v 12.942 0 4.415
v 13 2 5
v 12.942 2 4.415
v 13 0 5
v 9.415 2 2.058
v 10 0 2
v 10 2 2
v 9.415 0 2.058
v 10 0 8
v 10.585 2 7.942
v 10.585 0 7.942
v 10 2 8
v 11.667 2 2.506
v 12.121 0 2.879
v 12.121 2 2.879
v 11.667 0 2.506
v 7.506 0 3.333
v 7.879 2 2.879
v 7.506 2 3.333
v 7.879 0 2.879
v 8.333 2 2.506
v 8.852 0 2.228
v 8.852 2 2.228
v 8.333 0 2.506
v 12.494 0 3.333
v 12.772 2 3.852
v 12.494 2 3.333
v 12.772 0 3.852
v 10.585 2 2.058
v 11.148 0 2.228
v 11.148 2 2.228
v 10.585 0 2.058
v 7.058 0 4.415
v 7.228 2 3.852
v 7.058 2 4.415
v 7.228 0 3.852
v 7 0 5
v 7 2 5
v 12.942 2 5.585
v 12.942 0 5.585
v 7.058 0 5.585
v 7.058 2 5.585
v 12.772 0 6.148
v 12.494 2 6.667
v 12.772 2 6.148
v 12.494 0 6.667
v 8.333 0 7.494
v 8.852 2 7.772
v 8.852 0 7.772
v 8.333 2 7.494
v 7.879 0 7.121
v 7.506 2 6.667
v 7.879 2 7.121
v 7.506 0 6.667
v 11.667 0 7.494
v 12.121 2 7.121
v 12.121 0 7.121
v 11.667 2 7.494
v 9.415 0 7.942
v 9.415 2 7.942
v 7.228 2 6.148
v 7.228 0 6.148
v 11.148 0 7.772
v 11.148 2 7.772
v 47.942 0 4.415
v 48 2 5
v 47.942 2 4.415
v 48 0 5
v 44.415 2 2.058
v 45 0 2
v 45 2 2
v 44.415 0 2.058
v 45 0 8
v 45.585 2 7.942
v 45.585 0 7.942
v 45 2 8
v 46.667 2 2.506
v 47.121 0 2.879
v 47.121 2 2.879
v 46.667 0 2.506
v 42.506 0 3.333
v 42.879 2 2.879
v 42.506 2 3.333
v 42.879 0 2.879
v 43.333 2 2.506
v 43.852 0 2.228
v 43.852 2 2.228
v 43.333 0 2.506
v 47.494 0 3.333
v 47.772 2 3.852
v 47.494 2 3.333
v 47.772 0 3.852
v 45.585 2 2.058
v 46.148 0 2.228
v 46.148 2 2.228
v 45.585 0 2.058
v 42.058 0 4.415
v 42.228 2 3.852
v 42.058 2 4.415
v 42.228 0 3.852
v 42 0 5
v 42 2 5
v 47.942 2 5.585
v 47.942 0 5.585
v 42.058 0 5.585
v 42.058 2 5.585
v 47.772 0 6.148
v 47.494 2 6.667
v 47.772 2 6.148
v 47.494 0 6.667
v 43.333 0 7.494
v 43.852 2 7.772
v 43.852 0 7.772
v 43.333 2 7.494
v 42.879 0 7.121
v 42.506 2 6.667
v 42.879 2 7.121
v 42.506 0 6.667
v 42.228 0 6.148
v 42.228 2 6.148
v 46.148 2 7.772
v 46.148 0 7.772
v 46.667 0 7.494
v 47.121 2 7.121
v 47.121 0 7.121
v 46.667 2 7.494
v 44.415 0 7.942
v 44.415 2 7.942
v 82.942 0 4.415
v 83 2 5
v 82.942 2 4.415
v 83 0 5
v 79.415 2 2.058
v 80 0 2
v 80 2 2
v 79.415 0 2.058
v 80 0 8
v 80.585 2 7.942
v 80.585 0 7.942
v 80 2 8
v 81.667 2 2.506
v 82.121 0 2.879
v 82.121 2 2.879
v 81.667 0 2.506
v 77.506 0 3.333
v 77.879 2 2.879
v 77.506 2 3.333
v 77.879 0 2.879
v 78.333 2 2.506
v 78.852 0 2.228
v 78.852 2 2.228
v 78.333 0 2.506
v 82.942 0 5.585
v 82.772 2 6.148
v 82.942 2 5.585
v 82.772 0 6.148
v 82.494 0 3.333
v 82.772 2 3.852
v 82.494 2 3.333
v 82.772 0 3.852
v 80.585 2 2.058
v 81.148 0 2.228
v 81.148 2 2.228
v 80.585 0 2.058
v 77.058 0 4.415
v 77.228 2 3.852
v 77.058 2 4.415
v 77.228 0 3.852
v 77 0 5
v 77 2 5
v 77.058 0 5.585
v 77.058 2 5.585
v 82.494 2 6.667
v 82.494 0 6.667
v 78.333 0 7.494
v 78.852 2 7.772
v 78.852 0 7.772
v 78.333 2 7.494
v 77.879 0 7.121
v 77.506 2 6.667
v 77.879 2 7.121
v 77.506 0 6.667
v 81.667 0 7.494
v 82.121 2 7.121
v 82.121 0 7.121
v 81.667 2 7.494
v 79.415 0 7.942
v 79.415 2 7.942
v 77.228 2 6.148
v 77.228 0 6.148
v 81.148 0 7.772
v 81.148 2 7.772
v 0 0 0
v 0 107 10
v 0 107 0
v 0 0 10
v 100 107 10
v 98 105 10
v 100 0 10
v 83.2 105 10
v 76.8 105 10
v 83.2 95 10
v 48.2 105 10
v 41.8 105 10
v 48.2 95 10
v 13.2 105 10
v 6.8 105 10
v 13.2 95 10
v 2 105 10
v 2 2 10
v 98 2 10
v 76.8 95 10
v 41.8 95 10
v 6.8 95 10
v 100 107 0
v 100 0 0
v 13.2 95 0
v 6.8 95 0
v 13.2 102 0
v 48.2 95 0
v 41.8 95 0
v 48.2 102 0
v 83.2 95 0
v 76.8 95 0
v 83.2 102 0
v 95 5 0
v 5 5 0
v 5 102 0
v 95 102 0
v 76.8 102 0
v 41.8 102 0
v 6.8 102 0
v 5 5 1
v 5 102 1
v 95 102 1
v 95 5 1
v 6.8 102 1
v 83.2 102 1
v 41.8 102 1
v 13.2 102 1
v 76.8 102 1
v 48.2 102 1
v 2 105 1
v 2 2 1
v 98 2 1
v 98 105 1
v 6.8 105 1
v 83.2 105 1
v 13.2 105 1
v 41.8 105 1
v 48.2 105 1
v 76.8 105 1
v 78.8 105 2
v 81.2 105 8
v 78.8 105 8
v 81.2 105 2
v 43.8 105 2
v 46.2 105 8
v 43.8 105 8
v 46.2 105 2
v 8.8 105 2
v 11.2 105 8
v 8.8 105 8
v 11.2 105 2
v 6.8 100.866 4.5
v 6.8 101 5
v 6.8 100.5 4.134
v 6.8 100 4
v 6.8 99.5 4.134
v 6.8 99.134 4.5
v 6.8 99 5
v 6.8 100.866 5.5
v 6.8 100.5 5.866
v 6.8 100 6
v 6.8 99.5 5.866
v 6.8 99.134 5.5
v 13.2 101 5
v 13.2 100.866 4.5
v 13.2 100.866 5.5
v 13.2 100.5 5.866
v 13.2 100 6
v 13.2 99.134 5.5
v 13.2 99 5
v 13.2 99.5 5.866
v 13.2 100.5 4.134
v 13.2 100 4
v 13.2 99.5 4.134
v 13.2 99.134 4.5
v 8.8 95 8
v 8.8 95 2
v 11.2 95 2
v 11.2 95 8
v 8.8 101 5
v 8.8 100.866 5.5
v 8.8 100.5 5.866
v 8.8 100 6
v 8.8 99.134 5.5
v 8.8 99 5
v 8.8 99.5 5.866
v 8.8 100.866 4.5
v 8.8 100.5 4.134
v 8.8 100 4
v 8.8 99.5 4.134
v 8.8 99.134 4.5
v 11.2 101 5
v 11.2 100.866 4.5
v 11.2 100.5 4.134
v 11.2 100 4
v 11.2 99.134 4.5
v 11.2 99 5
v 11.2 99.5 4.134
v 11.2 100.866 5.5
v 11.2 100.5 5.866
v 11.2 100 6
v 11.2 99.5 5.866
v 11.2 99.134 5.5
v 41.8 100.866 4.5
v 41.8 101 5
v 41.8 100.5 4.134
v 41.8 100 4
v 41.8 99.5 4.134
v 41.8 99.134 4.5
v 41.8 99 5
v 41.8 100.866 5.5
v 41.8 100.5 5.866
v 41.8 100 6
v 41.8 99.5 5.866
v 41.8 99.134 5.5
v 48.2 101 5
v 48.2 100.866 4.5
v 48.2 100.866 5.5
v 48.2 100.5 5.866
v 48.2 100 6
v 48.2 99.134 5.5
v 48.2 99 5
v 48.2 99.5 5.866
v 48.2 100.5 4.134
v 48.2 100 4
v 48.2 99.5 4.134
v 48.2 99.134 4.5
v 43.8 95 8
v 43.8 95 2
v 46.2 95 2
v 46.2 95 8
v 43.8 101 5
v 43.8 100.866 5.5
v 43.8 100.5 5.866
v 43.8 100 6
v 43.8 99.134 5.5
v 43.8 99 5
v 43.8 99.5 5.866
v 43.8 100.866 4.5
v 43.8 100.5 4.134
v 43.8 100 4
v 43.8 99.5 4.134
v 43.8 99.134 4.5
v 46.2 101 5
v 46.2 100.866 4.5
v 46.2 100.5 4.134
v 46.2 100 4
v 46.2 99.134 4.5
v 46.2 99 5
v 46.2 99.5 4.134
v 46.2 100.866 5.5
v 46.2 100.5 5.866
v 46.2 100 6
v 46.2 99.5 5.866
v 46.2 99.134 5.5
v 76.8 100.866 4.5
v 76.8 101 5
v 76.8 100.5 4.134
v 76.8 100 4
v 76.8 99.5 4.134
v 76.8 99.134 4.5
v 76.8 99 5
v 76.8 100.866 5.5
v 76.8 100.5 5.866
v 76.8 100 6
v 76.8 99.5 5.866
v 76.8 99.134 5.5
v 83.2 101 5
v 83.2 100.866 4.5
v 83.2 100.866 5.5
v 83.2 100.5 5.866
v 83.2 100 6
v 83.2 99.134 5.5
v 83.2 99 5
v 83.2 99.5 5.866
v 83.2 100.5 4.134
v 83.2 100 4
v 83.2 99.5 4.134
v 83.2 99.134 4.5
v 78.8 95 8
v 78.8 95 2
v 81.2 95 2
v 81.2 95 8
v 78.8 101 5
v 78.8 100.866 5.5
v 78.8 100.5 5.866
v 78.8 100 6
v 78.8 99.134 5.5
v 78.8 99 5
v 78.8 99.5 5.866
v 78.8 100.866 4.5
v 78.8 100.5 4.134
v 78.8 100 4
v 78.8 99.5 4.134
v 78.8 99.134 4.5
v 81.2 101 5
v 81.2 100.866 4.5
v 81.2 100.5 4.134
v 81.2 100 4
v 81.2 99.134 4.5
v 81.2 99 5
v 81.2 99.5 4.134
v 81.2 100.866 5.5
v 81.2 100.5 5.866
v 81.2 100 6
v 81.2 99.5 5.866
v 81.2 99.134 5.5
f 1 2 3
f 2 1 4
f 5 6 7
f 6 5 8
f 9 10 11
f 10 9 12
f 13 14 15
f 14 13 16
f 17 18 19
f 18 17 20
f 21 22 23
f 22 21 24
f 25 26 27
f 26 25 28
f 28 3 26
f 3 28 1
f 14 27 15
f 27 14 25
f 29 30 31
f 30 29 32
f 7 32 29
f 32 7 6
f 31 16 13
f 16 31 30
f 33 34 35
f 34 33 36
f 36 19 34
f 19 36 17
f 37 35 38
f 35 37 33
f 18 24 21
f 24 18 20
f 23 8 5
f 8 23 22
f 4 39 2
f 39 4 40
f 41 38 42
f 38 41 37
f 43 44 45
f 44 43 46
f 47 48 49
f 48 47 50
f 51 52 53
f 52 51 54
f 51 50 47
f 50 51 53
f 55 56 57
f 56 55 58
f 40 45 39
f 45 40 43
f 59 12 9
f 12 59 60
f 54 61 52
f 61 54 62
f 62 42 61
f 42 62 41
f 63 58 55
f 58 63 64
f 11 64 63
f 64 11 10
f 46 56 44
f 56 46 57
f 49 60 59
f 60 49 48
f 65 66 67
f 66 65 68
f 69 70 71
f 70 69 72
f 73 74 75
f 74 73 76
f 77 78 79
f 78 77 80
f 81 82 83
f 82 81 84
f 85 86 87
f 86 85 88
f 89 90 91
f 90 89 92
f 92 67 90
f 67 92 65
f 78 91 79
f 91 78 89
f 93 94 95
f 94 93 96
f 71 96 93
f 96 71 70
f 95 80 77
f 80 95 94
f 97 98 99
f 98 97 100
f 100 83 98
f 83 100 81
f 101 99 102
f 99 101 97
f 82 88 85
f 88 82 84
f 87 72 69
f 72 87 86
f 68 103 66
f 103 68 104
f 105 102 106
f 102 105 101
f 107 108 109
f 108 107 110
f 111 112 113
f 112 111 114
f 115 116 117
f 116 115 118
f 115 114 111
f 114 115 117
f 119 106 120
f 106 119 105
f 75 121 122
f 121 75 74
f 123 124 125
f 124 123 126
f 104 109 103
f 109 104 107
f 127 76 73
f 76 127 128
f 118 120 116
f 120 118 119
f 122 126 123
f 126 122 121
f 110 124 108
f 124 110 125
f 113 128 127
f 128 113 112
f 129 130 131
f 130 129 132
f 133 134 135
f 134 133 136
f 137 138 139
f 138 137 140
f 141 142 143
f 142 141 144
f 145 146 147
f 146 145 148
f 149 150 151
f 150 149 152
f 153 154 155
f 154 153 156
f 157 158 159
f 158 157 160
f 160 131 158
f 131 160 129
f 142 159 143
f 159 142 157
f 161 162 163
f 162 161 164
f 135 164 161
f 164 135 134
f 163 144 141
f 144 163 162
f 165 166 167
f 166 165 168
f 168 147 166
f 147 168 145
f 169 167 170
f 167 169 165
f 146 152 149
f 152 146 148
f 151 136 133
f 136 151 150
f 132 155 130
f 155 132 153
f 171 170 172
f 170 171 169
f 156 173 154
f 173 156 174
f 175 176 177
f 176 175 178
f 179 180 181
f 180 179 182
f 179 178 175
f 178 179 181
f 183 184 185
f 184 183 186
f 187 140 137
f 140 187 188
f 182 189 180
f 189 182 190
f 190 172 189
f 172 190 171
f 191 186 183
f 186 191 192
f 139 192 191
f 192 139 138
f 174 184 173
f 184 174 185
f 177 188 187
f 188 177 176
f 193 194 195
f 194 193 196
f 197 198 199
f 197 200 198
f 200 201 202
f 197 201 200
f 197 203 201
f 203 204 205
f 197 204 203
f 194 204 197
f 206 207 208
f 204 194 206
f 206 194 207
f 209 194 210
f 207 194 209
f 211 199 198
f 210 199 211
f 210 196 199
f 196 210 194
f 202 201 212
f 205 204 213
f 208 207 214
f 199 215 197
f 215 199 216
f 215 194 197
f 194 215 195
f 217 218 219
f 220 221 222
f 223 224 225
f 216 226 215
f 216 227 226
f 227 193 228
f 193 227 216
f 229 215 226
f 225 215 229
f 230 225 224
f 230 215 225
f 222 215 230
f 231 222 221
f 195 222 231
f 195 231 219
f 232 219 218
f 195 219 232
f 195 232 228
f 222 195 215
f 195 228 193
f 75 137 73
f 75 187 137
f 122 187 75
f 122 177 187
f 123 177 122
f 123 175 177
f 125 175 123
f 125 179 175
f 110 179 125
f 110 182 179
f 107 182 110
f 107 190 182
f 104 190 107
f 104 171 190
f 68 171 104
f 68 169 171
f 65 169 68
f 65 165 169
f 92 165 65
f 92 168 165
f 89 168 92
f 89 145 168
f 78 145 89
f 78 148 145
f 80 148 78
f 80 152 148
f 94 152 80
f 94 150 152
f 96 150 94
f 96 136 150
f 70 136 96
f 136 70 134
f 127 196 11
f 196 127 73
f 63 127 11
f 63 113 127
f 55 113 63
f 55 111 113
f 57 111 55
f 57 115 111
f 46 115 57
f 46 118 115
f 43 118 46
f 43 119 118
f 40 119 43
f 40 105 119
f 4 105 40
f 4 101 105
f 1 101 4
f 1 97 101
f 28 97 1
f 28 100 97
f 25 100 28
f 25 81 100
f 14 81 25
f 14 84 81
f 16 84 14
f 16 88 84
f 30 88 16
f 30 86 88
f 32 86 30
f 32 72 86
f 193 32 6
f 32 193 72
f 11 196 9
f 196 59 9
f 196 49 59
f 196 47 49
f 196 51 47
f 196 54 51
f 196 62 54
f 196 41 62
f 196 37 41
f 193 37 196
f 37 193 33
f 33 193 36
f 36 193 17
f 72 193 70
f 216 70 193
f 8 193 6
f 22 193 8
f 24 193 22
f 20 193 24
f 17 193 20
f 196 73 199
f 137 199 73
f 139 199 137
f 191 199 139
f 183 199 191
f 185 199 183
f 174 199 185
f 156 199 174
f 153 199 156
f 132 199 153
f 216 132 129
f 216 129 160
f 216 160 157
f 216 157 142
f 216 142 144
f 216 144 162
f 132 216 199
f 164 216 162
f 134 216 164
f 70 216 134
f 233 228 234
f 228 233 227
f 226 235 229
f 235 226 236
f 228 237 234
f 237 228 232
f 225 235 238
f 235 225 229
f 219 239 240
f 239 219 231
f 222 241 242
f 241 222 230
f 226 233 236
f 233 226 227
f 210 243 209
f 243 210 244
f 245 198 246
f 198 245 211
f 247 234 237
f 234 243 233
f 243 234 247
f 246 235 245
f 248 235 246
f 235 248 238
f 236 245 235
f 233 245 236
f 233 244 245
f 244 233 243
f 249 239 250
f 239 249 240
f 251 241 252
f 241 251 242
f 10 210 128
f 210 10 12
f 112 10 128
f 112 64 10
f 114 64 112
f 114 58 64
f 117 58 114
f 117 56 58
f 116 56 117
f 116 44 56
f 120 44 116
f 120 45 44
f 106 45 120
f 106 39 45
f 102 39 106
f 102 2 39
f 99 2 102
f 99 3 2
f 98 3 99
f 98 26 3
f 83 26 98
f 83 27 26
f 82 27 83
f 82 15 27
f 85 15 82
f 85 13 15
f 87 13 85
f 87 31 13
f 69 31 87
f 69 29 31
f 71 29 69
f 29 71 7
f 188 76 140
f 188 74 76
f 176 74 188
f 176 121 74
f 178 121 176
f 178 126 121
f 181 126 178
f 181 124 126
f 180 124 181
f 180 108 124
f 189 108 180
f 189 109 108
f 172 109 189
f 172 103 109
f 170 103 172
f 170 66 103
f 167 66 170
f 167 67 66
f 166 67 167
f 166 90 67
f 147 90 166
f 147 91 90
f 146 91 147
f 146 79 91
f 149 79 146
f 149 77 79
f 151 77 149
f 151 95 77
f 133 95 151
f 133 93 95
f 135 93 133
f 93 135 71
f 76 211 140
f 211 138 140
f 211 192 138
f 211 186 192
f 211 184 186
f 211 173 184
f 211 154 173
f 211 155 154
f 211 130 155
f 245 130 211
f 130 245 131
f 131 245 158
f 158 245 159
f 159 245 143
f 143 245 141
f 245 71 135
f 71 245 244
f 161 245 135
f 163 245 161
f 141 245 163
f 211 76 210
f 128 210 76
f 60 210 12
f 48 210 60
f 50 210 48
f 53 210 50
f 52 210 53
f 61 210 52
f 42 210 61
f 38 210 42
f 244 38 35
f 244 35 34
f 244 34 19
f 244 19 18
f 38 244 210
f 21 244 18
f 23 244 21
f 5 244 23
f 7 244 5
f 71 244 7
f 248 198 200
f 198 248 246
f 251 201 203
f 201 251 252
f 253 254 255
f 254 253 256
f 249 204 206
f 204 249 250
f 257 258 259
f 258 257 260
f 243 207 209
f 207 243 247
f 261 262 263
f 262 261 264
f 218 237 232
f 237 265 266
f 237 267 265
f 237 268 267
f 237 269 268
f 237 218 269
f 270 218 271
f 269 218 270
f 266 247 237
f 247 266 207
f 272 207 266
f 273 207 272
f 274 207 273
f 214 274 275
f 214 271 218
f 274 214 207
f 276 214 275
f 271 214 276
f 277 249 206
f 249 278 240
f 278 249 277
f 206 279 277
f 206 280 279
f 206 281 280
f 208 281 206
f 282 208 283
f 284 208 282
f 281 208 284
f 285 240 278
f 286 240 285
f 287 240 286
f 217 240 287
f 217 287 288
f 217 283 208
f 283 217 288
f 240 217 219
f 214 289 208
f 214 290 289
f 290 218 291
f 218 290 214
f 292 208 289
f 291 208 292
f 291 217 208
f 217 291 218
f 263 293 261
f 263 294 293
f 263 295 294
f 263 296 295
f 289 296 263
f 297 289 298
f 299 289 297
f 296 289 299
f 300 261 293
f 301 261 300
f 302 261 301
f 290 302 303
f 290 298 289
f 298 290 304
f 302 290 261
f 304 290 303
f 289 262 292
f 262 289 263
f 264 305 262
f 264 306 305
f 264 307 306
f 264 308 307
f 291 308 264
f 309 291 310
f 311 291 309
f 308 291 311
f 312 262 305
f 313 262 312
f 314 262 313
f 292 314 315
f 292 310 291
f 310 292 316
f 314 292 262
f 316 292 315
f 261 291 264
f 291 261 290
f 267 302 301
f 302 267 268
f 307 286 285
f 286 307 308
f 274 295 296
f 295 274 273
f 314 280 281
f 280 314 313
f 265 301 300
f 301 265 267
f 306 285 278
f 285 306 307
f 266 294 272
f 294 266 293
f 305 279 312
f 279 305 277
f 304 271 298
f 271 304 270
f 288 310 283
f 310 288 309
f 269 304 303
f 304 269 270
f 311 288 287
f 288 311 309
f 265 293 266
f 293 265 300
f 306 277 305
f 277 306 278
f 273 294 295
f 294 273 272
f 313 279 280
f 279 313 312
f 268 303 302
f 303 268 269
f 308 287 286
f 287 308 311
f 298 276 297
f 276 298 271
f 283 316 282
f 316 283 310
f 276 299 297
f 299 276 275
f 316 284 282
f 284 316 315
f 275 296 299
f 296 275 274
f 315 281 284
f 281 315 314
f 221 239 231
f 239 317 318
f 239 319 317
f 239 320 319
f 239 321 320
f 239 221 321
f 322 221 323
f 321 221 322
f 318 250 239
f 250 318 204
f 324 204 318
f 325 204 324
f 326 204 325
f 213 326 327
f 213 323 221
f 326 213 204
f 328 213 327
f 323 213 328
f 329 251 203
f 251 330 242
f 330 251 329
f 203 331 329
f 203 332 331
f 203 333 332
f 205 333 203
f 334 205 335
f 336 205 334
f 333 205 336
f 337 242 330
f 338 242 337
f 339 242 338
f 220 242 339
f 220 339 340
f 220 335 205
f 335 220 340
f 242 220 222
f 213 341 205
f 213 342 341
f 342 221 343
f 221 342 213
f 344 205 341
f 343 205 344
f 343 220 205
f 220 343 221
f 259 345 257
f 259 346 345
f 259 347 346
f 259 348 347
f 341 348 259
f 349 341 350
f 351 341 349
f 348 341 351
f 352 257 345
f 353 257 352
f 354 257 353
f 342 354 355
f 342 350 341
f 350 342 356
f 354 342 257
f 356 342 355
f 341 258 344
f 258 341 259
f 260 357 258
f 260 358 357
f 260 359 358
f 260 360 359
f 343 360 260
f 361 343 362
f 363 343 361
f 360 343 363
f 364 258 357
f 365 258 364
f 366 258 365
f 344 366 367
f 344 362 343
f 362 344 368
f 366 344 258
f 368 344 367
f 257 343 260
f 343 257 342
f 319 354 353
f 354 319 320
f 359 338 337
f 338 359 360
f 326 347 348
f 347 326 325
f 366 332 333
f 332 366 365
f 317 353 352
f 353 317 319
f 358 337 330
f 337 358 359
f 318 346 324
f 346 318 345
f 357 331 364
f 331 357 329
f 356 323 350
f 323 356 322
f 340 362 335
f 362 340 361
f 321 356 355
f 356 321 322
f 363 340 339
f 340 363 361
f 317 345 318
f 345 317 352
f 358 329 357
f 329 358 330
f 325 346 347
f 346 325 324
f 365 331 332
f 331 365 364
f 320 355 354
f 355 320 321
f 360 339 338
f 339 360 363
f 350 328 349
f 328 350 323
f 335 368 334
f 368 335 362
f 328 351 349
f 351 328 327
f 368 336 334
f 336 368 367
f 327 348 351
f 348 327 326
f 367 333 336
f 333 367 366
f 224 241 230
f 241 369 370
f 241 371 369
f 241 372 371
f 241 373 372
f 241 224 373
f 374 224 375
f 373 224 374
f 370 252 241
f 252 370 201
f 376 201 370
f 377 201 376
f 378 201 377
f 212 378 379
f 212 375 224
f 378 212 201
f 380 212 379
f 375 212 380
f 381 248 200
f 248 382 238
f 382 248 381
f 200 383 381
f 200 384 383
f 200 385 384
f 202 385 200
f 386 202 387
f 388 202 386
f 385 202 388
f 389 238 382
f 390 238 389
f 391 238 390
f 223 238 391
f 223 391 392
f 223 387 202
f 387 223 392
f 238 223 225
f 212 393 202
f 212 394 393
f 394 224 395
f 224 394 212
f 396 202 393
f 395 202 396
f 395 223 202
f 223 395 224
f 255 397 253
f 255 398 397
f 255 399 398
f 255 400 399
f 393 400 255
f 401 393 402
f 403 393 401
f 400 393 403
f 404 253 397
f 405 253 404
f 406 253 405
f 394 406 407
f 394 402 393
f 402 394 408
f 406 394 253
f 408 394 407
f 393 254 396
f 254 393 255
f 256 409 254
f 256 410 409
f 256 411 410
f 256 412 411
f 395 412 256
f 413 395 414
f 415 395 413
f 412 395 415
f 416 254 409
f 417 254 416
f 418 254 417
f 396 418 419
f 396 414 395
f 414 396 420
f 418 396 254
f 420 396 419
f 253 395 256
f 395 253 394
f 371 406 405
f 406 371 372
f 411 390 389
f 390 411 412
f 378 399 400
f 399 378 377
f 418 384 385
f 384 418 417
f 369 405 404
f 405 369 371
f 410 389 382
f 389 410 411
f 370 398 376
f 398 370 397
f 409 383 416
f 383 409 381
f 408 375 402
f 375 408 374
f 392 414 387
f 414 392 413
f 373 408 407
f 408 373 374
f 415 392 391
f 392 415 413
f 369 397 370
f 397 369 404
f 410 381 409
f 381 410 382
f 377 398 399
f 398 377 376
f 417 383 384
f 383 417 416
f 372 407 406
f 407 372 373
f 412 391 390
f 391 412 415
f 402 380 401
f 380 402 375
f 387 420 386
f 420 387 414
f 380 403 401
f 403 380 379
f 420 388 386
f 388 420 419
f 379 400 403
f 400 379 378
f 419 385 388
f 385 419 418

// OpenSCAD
difference(){
	cube([100,107,10]);
	translate([5,5,-1])
		cube([90,97,12]);
	translate([2,2,1])
		cube([96,103,12]);


	//torsion hole	
	for ( i=[0:2]) {
		
		translate([10+i*35,-5,5])
			rotate([-90,0,0])
				cylinder(20,3,3, $fn=32);
	}
}

for ( i=[0:2]) {
	//torsion fixer
	difference(){
		translate([6.8+i*35,95,0])
			cube([6.4,10,10]);
		translate([8.8+i*35,94,2])
			cube([2.4,12,6]);
		translate([0+i*35,100,5])
			rotate([0,90,0])
				cylinder(20,1,1, $fn=12);
	}
}
